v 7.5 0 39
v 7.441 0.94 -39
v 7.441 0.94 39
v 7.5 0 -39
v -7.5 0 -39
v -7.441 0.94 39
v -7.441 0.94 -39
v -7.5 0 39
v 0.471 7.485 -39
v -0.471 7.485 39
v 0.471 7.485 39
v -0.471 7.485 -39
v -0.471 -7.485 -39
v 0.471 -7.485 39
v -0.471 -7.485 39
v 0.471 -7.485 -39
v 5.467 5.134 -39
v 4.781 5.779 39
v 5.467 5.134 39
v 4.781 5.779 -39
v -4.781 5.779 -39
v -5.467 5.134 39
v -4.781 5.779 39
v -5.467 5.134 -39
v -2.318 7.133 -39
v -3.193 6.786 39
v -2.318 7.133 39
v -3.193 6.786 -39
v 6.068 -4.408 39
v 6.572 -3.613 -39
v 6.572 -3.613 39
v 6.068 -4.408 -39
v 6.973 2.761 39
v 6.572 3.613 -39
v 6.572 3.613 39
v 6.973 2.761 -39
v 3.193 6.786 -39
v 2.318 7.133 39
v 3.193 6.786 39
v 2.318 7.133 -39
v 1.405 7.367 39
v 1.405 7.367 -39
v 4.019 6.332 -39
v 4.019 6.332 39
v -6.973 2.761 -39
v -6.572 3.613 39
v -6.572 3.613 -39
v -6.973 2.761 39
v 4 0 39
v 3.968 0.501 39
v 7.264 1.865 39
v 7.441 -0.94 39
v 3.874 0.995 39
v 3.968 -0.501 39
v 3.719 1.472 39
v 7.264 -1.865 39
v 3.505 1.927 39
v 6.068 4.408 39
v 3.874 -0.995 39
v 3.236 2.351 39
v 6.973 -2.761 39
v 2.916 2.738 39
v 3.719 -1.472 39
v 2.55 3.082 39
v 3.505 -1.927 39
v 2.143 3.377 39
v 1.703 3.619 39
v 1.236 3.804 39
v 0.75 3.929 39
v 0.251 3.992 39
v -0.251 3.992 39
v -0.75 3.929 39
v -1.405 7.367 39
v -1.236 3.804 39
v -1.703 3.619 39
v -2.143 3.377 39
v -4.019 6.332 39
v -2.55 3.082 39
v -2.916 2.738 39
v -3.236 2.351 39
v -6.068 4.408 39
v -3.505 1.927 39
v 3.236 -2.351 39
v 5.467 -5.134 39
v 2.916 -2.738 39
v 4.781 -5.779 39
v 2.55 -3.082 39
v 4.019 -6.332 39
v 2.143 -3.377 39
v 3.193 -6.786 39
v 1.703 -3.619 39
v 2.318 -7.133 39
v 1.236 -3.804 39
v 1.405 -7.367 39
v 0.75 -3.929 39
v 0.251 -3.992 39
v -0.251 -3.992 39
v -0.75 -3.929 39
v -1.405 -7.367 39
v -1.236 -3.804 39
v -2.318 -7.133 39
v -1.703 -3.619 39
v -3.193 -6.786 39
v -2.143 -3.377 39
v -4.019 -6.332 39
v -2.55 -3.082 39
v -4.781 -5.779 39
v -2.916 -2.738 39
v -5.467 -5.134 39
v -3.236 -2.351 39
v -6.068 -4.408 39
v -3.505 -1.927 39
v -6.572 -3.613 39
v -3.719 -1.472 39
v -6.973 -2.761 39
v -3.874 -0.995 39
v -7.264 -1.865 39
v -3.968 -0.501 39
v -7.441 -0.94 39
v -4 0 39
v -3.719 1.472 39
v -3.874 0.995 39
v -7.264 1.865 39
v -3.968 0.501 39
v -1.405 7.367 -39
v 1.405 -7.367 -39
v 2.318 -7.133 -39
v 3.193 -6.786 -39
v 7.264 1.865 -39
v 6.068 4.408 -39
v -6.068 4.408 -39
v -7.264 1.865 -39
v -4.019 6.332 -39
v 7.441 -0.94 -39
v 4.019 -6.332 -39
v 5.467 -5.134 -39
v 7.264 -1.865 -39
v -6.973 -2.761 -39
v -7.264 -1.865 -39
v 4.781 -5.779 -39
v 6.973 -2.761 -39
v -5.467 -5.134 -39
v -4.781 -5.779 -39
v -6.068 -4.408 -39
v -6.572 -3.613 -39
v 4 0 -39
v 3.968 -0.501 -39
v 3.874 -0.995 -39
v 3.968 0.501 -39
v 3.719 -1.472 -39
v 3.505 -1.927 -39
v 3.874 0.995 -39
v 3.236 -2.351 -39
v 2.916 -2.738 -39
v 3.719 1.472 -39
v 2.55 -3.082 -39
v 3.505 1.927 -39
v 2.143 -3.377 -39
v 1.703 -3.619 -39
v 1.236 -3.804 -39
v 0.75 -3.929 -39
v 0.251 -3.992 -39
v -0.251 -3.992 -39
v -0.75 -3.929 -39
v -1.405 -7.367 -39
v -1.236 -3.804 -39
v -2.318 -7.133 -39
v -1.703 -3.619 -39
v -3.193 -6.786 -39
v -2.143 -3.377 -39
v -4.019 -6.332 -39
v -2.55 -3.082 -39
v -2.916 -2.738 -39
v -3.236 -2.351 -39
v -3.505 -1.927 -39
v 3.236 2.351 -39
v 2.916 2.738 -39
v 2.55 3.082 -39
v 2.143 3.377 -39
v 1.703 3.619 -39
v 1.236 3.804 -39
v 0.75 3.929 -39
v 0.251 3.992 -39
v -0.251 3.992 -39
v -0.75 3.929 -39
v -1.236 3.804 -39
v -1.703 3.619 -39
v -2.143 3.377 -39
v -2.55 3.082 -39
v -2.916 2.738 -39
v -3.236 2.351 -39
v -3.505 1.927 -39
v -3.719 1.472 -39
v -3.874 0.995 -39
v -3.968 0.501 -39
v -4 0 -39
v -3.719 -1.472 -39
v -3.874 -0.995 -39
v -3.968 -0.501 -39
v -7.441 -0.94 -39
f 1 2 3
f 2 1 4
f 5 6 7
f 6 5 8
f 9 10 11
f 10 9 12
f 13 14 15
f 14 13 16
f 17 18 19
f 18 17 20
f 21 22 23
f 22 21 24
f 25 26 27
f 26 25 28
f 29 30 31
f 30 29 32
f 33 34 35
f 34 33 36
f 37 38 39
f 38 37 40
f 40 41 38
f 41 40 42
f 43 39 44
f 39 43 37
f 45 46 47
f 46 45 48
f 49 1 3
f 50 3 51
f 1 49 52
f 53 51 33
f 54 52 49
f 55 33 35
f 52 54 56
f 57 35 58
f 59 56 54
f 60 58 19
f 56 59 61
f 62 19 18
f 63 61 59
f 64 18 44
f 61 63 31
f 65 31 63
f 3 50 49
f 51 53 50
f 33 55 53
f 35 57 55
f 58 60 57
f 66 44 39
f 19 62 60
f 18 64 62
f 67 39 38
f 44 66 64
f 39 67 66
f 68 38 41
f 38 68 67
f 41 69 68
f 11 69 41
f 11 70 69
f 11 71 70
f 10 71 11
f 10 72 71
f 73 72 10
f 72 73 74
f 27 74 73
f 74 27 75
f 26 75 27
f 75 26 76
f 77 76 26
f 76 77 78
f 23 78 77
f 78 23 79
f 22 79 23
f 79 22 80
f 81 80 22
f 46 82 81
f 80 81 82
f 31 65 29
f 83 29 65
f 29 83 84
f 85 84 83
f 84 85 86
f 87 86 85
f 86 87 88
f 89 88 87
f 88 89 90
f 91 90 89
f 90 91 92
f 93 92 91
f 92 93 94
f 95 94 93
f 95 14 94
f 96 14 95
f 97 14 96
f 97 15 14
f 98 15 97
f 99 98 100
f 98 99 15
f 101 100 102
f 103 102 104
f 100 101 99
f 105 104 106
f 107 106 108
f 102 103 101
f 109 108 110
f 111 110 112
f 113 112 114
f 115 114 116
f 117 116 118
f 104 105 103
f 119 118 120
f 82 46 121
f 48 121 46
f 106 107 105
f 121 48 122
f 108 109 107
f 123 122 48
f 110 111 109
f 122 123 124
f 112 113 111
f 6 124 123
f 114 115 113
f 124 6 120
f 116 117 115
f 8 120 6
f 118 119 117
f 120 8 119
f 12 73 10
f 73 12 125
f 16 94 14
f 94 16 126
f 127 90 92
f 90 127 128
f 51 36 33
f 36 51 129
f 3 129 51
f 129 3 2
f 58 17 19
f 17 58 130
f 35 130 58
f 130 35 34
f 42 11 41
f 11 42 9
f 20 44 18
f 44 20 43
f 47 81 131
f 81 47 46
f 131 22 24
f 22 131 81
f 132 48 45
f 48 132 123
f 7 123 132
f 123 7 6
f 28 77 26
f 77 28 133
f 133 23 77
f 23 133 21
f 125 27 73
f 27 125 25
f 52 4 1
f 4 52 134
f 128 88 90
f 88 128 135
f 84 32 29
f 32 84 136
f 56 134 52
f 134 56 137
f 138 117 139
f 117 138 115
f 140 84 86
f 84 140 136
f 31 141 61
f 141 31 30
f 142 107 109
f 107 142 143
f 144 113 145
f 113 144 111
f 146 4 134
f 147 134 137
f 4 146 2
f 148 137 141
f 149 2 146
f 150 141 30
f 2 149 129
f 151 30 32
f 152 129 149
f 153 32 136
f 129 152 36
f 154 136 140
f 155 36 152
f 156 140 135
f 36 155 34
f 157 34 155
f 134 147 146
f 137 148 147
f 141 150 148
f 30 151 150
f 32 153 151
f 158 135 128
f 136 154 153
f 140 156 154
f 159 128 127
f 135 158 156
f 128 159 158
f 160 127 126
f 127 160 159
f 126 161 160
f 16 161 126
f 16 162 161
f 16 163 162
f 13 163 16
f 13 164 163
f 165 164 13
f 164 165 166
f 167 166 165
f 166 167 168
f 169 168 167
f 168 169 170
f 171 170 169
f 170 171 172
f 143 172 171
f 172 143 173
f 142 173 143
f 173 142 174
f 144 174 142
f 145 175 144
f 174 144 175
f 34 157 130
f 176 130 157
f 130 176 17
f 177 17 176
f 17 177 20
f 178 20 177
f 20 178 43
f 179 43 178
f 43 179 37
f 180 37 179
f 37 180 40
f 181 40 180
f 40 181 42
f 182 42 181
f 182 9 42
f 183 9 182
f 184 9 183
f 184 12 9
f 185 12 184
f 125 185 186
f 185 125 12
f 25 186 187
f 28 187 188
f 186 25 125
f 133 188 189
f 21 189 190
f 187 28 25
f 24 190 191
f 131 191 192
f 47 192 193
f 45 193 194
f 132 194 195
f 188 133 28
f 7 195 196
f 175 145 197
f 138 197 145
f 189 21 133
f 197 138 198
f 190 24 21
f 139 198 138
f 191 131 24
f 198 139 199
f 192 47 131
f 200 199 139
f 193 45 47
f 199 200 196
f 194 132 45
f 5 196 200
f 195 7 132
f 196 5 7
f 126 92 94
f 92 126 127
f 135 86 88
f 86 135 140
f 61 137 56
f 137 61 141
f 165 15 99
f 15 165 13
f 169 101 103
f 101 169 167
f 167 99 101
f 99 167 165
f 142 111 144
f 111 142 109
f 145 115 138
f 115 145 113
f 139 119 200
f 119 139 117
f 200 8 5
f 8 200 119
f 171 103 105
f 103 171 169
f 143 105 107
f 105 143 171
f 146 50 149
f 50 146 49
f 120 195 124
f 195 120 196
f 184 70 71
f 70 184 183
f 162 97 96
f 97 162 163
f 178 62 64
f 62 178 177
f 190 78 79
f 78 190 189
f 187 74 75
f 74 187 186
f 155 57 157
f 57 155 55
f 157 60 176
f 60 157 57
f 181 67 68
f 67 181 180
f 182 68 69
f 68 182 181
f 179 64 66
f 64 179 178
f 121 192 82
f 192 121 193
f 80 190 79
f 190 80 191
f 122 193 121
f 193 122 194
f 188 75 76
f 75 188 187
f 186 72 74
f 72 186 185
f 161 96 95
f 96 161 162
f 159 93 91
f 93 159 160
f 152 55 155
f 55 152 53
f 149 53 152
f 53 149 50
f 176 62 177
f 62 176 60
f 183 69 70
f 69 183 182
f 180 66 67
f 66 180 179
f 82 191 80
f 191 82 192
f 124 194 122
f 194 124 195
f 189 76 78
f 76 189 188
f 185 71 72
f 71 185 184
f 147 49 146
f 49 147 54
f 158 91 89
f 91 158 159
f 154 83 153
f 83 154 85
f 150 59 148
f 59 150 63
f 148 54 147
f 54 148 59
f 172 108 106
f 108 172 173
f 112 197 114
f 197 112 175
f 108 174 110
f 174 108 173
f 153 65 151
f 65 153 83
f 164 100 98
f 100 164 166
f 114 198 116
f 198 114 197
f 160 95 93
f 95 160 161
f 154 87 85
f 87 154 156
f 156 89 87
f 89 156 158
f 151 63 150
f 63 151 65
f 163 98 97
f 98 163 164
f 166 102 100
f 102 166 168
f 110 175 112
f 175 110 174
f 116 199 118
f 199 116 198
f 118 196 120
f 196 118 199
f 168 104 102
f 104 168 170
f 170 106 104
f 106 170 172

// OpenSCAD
$fn = 50;


difference() {
	union() {
		translate(v = [0, 0, -39.0000000000]) {
			cylinder(h = 78, r = 7.5000000000);
		}
	}
	union() {
		translate(v = [0, 0, -100.0000000000]) {
			cylinder(h = 200, r = 4.0000000000);
		}
	}
}
